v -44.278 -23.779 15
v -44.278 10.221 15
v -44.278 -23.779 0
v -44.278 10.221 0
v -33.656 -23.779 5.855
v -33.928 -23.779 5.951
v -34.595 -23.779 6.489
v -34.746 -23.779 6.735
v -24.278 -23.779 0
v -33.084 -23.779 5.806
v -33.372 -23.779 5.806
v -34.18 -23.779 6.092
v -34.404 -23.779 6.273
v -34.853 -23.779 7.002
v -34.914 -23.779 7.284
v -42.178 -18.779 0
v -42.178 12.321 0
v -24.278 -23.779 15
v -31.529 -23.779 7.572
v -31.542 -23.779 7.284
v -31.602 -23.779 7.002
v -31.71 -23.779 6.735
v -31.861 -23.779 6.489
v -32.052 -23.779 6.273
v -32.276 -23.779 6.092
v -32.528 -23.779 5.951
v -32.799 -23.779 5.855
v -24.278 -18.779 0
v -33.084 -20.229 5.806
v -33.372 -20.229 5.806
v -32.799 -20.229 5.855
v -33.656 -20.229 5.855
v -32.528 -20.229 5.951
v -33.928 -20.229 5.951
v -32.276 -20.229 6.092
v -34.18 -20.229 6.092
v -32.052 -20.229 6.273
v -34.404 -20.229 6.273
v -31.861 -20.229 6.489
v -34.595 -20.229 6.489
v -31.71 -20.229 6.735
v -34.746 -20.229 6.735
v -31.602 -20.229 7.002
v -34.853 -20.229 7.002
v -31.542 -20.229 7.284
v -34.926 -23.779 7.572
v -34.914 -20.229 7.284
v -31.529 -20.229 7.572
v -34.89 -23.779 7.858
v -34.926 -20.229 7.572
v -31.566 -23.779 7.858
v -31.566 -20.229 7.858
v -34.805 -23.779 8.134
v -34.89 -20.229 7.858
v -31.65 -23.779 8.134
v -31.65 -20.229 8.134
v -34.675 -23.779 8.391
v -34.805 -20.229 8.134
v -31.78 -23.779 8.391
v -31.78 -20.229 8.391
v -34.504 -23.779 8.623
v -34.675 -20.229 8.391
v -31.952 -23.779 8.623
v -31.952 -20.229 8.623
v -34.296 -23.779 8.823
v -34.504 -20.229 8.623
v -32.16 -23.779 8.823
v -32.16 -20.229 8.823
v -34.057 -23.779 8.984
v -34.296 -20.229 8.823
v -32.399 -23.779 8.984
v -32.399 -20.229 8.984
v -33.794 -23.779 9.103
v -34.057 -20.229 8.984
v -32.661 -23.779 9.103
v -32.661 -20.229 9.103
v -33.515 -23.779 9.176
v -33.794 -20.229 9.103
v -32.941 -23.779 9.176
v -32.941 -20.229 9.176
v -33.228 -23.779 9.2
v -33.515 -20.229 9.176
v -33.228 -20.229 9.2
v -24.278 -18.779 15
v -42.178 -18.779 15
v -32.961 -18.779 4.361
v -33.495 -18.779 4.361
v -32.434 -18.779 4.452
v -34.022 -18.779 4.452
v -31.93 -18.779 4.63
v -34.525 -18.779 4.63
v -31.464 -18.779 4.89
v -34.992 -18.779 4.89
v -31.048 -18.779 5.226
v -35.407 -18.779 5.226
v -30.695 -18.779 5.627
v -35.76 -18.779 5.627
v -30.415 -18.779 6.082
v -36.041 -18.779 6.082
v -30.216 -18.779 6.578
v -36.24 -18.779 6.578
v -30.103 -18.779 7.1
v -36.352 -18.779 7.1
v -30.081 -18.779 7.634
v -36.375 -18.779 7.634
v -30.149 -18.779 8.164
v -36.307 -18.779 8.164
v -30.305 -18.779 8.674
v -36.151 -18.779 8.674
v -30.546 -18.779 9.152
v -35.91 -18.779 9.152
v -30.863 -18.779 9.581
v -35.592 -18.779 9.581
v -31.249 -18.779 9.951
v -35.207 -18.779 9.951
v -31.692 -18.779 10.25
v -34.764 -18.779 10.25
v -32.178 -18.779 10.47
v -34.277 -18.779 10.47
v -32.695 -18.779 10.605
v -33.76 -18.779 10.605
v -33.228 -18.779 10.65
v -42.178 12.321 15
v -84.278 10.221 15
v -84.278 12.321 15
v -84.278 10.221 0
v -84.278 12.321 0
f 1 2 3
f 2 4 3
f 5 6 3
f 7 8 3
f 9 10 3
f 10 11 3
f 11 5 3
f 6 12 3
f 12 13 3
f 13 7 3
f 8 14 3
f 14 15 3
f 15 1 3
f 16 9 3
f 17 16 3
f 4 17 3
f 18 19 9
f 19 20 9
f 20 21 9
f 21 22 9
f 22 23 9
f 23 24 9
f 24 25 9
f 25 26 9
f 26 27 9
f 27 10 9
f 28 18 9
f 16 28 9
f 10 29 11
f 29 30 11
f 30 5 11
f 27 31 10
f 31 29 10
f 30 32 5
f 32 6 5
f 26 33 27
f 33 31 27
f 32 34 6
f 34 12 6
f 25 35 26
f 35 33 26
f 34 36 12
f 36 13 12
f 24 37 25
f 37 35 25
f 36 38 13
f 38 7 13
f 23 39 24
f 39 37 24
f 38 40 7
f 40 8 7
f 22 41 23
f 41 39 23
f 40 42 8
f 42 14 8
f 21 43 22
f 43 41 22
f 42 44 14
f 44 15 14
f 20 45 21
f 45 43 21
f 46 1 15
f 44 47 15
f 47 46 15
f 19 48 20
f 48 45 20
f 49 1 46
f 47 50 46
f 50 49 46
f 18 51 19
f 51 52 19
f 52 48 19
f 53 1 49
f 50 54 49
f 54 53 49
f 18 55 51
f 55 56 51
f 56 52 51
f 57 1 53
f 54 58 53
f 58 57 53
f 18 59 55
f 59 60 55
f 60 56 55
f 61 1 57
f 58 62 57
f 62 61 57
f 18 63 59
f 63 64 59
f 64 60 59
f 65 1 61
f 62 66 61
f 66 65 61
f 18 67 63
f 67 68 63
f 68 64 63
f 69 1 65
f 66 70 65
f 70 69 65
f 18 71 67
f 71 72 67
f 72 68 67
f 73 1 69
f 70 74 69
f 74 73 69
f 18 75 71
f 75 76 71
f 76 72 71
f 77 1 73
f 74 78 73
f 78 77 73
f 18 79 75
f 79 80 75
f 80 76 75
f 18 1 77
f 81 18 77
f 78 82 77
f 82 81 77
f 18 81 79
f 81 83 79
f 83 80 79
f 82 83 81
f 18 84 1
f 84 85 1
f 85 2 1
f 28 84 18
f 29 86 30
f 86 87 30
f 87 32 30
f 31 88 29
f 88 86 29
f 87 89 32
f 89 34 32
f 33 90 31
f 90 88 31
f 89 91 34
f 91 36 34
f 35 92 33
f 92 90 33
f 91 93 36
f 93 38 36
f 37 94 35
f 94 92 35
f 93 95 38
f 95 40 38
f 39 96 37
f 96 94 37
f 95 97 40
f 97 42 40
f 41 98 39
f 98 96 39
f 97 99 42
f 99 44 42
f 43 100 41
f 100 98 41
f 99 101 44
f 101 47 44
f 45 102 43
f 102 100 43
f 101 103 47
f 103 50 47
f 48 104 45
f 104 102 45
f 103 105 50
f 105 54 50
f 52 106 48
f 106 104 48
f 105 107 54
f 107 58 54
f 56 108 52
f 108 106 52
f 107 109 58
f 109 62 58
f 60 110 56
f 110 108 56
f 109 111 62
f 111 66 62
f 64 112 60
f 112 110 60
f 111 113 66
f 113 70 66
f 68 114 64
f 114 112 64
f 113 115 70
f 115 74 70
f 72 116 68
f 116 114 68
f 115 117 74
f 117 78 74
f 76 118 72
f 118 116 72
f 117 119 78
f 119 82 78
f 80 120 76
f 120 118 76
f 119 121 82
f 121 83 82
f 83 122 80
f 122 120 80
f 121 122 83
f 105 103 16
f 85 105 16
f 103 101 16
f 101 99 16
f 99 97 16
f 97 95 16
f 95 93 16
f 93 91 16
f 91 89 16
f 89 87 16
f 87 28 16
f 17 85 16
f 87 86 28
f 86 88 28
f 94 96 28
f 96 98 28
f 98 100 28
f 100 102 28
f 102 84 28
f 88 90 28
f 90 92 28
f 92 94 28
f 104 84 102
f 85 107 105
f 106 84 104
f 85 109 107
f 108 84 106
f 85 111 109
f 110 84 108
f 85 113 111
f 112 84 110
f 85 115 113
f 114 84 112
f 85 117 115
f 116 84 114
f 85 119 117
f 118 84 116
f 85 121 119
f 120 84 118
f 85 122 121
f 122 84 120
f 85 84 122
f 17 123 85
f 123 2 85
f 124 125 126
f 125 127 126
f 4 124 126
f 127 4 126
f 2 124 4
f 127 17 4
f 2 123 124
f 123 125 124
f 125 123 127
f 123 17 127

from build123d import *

# Parameters (mm, degrees)
SALIENTE_EXTRUIR1_DEPTH                              = 15
CROQUIS2_R                                           = 1.5
CORTAR_EXTRUIR1_DEPTH                                = 5
AVELLANADO_PARA_TORNILLO_CON_CABEZA_PLAN_D           = 3.4
AVELLANADO_PARA_TORNILLO_CON_CABEZA_PLAN_CSINK_D     = 6.3
AVELLANADO_PARA_TORNILLO_CON_CABEZA_PLAN_CSINK_ANGLE = 90


with BuildPart() as part:
    # Croquis1 → Saliente-Extruir1 (new body)
    with BuildSketch(Plane.XY):
        Polygon((-24.277819577, -18.779195804), (-24.277819577, -23.779195804), (-44.277819577, -23.779195804), (-44.277819577, 10.220804196), (-84.277819577, 10.220804196), (-84.277819577, 12.320804196), (-42.177819577, 12.320804196), (-42.177819577, -18.779195804), align=None)
    extrude(amount=SALIENTE_EXTRUIR1_DEPTH)

    # Croquis2 → Cortar-Extruir1 (cut)
    with BuildSketch(Plane(origin=(0, -18.779195804, 0), x_dir=(1, 0, 0), z_dir=(0, 1, 0))):
        with Locations((-33.227819577, -7.5)):
            Circle(CROQUIS2_R)
    extrude(amount=-CORTAR_EXTRUIR1_DEPTH, mode=Mode.SUBTRACT)

    # Avellanado para tornillo con cabeza plana avellanada de M31 (through all)
    with Locations(Plane(origin=(0, -18.779195804, 0), x_dir=(1, 0, 0), z_dir=(0, 1, 0))):
        with Locations((-33.227819577, -7.5)):
            CounterSinkHole(AVELLANADO_PARA_TORNILLO_CON_CABEZA_PLAN_D / 2, AVELLANADO_PARA_TORNILLO_CON_CABEZA_PLAN_CSINK_D / 2, counter_sink_angle=AVELLANADO_PARA_TORNILLO_CON_CABEZA_PLAN_CSINK_ANGLE)


solid = part.part
